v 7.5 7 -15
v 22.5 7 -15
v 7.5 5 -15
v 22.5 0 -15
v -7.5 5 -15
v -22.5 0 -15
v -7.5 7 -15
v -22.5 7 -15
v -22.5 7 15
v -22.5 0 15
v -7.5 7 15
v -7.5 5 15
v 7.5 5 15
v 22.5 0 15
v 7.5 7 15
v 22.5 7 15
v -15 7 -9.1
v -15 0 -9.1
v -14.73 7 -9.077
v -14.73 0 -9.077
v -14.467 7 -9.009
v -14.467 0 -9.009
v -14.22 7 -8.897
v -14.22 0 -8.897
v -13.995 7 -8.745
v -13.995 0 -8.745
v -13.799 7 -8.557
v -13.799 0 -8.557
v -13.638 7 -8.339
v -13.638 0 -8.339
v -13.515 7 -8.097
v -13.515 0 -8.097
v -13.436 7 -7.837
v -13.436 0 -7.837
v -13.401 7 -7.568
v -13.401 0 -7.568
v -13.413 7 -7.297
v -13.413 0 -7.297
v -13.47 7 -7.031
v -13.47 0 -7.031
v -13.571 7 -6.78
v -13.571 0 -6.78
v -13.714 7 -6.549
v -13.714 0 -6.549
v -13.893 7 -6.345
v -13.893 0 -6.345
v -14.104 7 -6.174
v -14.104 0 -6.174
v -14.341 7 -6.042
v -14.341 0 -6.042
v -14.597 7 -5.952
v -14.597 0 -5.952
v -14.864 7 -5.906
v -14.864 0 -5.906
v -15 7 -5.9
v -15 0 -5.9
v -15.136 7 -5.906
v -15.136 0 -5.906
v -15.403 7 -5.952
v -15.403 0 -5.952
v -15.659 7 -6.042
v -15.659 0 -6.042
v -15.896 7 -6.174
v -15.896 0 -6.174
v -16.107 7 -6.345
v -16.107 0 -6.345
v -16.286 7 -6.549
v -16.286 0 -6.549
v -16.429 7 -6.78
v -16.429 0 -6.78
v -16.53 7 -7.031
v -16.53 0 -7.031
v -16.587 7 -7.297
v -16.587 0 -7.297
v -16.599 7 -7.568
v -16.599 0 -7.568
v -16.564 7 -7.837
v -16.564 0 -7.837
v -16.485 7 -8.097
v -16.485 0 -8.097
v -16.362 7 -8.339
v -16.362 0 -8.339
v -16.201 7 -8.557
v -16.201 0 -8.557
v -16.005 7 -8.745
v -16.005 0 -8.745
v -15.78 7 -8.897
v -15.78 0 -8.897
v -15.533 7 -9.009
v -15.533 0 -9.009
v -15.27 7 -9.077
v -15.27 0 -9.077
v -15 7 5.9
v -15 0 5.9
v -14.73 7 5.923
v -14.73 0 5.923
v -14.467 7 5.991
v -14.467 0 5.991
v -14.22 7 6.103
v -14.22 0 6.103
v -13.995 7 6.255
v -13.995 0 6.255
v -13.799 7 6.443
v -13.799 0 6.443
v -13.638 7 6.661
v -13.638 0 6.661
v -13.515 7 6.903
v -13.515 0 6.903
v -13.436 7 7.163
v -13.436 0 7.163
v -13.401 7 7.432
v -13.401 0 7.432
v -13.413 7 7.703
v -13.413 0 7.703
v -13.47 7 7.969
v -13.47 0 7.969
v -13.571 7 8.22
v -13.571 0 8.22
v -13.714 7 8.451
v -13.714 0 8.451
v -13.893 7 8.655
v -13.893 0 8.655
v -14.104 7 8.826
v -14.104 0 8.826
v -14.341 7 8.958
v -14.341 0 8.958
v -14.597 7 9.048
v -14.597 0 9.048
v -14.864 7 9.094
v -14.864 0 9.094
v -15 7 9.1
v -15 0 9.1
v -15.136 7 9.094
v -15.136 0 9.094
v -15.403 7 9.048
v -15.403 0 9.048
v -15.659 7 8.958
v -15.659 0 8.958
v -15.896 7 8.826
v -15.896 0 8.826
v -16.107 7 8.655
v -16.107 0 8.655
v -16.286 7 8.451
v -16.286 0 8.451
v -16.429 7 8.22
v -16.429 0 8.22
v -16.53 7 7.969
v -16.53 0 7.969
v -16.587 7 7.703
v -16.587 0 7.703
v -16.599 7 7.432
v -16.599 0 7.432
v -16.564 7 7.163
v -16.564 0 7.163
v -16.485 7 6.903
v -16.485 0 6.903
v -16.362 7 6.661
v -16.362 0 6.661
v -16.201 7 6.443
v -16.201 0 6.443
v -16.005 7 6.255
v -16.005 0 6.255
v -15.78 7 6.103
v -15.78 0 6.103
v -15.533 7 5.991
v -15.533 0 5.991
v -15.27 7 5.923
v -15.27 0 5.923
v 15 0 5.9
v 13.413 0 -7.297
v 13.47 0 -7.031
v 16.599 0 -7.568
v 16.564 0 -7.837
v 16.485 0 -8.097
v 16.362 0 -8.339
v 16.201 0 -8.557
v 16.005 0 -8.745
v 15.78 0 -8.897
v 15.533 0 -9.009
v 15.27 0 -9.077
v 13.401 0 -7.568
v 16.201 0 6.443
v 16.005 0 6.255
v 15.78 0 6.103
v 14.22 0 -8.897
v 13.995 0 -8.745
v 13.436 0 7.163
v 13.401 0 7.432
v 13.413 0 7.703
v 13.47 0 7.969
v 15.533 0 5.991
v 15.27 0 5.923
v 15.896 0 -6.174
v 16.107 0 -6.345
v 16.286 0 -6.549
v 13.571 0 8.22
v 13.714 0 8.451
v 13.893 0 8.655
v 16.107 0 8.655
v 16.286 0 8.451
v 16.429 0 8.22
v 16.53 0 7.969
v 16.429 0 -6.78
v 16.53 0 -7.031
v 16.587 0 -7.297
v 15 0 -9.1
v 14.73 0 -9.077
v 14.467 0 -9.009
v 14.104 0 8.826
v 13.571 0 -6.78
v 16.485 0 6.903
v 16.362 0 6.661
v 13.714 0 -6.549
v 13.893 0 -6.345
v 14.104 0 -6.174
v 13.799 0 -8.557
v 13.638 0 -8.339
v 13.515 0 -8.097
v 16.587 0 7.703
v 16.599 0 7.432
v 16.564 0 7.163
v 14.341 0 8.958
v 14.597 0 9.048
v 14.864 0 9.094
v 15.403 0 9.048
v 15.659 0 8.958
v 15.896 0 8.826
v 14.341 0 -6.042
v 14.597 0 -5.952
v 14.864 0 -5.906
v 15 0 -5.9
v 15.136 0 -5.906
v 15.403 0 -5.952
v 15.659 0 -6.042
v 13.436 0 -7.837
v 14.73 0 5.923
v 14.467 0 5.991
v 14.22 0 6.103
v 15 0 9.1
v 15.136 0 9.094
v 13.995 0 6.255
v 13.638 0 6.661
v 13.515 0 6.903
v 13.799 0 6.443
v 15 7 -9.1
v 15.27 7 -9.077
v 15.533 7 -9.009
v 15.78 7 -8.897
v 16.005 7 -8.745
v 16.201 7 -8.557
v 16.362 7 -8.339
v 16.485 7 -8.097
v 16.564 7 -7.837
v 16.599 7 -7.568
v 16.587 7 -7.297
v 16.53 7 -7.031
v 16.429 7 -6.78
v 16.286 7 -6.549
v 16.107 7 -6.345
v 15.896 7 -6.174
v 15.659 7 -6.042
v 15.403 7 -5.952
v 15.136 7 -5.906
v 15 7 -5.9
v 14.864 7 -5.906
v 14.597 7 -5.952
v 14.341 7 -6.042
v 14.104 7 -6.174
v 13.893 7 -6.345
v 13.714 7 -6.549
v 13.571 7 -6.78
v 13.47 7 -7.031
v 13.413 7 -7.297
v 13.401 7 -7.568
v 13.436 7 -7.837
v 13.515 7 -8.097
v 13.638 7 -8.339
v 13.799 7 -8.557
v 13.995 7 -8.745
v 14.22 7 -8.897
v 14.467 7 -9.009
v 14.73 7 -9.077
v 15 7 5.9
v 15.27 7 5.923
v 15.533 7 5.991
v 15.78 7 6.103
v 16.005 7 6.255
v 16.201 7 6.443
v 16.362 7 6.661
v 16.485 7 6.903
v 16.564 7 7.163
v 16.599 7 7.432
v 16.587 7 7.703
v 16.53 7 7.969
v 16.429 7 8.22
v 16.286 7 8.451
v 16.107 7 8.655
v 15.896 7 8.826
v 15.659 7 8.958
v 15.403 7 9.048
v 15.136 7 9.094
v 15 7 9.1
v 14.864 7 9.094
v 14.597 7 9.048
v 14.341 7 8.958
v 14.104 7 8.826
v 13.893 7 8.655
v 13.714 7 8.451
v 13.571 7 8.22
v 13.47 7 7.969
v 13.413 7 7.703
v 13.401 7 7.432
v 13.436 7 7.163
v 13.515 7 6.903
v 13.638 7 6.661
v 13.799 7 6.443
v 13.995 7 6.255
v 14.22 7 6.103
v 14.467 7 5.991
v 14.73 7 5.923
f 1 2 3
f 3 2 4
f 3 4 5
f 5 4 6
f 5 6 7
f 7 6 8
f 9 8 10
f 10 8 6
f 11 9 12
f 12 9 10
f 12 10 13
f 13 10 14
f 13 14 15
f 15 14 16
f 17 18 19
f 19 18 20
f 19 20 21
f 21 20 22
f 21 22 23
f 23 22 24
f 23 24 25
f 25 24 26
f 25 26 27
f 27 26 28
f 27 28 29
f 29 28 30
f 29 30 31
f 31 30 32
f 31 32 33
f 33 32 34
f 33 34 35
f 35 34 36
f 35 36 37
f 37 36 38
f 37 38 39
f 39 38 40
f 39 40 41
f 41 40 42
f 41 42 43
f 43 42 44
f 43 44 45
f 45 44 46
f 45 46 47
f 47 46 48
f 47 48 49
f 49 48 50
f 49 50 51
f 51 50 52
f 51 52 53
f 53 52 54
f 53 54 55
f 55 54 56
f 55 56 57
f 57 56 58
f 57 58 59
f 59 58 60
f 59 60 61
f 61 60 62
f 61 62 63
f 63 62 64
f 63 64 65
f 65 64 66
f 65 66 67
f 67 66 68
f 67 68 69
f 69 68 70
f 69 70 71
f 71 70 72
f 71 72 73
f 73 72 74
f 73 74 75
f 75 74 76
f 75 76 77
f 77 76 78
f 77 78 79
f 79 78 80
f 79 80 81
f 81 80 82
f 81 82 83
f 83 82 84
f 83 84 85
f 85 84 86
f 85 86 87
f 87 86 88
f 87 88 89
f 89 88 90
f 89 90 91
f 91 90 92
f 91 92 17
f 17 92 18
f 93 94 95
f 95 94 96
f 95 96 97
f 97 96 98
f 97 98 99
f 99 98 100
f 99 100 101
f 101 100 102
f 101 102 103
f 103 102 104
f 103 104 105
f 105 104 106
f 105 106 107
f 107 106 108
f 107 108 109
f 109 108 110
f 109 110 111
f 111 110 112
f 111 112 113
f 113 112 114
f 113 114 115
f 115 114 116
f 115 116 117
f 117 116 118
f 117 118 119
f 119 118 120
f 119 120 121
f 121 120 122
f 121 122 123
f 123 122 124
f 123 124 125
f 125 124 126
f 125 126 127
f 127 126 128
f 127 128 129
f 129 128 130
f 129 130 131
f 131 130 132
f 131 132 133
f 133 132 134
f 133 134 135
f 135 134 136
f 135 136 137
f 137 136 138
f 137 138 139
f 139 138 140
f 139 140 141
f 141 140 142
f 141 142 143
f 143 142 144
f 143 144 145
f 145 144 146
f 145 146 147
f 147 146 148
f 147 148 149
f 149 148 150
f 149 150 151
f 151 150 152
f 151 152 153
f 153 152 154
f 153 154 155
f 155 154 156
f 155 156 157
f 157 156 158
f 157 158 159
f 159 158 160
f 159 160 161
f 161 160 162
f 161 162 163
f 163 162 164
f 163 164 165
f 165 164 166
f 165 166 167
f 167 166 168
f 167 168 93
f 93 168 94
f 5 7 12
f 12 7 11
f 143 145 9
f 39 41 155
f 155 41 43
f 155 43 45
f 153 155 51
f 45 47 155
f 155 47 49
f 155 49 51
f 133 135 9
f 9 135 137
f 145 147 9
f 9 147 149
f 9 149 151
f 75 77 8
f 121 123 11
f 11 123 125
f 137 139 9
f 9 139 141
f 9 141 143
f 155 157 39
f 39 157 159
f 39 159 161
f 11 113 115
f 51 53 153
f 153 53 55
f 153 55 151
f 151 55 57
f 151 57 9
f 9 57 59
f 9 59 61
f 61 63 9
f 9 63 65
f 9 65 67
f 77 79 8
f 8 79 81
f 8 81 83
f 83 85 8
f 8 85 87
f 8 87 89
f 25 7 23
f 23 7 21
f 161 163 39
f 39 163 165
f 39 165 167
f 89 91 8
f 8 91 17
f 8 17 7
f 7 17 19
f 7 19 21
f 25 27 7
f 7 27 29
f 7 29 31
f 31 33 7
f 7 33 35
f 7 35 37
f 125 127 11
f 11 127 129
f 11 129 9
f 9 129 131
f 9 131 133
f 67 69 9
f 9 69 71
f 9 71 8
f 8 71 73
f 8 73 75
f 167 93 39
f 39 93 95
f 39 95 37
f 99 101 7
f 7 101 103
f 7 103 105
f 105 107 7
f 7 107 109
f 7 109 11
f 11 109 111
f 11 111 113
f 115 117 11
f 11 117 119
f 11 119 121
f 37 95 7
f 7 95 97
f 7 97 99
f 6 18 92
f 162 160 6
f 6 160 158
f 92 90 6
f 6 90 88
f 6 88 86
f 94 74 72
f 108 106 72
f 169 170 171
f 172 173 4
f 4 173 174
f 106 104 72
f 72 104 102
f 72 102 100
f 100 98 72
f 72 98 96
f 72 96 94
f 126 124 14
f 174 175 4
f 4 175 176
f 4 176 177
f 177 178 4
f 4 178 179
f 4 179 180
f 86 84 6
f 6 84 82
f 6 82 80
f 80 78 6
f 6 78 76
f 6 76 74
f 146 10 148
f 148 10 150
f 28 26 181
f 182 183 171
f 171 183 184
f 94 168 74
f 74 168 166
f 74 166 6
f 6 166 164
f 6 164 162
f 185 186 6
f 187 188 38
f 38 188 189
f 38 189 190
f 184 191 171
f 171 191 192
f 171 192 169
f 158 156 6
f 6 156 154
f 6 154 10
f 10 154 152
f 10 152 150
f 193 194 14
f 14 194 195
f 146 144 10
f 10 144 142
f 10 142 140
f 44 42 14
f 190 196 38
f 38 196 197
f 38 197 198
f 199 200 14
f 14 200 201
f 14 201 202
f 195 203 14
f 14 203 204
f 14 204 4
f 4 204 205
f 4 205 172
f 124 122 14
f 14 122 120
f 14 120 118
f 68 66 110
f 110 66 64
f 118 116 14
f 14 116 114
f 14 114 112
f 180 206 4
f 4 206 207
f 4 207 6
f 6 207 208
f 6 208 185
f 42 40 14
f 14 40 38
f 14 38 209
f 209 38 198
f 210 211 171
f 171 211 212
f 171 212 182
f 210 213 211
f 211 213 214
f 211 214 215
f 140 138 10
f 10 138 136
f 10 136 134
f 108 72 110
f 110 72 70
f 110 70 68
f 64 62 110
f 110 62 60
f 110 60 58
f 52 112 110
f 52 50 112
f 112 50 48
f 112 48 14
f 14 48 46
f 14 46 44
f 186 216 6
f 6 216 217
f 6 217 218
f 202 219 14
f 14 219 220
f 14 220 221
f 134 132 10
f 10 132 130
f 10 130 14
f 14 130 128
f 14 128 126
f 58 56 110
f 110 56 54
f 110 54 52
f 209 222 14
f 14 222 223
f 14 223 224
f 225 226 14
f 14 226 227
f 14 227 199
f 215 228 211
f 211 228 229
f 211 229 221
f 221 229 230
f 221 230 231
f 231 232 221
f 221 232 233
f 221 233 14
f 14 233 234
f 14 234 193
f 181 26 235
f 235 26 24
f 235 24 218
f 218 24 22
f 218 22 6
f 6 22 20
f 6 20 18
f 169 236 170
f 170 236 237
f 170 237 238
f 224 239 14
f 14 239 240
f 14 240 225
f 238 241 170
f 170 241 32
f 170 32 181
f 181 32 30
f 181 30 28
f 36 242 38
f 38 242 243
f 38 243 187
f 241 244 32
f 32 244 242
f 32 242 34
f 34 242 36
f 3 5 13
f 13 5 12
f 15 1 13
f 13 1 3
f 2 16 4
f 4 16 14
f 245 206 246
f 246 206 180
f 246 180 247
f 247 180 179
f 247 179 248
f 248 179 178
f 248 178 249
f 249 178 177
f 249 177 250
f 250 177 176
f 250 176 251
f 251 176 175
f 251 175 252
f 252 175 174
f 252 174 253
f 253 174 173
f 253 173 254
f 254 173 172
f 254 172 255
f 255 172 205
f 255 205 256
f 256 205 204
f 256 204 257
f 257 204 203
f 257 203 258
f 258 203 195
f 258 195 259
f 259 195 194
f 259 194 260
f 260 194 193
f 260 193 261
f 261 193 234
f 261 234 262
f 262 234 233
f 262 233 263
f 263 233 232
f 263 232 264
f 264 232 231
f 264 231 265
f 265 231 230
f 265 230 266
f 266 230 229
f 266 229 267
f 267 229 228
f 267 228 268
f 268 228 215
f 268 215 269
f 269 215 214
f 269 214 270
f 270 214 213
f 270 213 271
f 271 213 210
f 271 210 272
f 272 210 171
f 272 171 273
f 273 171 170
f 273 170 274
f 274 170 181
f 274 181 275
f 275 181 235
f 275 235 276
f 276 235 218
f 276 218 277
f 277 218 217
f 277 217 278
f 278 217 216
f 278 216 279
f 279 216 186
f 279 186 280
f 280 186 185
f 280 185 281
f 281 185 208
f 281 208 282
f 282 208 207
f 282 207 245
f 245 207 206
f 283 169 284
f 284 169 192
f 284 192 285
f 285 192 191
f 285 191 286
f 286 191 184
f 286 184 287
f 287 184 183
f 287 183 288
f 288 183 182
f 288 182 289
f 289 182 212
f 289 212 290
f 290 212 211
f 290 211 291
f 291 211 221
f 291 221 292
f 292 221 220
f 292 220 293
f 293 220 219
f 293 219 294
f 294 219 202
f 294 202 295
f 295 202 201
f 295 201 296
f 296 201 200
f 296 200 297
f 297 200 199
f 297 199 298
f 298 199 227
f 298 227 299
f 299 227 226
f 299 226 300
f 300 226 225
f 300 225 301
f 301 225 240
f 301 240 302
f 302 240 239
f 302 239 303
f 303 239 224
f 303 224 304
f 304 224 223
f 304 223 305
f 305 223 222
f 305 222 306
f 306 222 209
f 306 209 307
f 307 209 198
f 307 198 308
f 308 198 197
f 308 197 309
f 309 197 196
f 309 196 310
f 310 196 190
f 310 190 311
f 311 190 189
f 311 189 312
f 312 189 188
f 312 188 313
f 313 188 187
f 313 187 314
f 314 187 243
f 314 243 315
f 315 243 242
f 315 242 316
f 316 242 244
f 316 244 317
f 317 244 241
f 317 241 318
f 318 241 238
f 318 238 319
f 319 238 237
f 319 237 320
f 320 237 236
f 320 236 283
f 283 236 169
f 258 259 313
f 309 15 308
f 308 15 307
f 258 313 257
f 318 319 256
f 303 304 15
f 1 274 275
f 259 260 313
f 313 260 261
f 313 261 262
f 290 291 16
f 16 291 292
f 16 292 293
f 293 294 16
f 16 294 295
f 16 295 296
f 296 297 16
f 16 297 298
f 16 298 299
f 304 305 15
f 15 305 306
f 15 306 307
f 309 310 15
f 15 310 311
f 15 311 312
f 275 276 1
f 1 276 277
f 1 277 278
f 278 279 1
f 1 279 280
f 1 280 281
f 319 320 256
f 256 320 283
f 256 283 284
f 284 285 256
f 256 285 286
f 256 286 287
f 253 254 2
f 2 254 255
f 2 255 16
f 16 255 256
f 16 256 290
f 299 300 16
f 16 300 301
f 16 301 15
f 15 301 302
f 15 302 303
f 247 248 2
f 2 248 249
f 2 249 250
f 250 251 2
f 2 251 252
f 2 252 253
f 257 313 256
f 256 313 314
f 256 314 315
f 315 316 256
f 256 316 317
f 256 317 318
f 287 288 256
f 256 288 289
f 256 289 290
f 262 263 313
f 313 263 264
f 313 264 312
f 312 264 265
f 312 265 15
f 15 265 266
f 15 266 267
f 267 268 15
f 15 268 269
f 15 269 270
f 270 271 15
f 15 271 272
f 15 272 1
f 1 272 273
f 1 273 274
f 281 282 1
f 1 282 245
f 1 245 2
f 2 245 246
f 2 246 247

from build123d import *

# Parameters (mm, degrees)
SKETCH1_W             = 15
SKETCH1_H             = 30
SKETCH1_R             = 1.6
BOSS_EXTRUDE1_DEPTH   = 7
BOSS_EXTRUDE1_2_DEPTH = 7
SKETCH1_3_W           = 15
SKETCH1_3_H           = 30
BOSS_EXTRUDE2_DEPTH   = 5


with BuildPart() as part:
    # Sketch1 → Boss-Extrude1 (new body)
    with BuildSketch(Plane(origin=(0, 0, 0), x_dir=(1, 0, 0), z_dir=(0, 1, 0))):
        with Locations((-15, 0)):
            Rectangle(SKETCH1_W, SKETCH1_H)
        with Locations((-15, -7.5)):
            Circle(SKETCH1_R, mode=Mode.SUBTRACT)
        with Locations((-15, 7.5)):
            Circle(SKETCH1_R, mode=Mode.SUBTRACT)
    extrude(amount=BOSS_EXTRUDE1_DEPTH)



with BuildPart() as body_2:
    # Sketch1 → Boss-Extrude1 2 (new body)
    with BuildSketch(Plane(origin=(0, 0, 0), x_dir=(1, 0, 0), z_dir=(0, 1, 0))):
        with Locations((15, 0)):
            Rectangle(SKETCH1_W, SKETCH1_H)
        with Locations((15, -7.5)):
            Circle(SKETCH1_R, mode=Mode.SUBTRACT)
        with Locations((15, 7.5)):
            Circle(SKETCH1_R, mode=Mode.SUBTRACT)
    extrude(amount=BOSS_EXTRUDE1_2_DEPTH)


with BuildPart() as part_1:
    add(part.part)

    add(body_2.part)  # Boss-Extrude2 merges body 2
    # Sketch1<3> → Boss-Extrude2 (add)
    with BuildSketch(Plane(origin=(0, 0, 0), x_dir=(1, 0, 0), z_dir=(0, 1, 0))):
        Rectangle(SKETCH1_3_W, SKETCH1_3_H)
    extrude(amount=BOSS_EXTRUDE2_DEPTH)


solid = part_1.part
